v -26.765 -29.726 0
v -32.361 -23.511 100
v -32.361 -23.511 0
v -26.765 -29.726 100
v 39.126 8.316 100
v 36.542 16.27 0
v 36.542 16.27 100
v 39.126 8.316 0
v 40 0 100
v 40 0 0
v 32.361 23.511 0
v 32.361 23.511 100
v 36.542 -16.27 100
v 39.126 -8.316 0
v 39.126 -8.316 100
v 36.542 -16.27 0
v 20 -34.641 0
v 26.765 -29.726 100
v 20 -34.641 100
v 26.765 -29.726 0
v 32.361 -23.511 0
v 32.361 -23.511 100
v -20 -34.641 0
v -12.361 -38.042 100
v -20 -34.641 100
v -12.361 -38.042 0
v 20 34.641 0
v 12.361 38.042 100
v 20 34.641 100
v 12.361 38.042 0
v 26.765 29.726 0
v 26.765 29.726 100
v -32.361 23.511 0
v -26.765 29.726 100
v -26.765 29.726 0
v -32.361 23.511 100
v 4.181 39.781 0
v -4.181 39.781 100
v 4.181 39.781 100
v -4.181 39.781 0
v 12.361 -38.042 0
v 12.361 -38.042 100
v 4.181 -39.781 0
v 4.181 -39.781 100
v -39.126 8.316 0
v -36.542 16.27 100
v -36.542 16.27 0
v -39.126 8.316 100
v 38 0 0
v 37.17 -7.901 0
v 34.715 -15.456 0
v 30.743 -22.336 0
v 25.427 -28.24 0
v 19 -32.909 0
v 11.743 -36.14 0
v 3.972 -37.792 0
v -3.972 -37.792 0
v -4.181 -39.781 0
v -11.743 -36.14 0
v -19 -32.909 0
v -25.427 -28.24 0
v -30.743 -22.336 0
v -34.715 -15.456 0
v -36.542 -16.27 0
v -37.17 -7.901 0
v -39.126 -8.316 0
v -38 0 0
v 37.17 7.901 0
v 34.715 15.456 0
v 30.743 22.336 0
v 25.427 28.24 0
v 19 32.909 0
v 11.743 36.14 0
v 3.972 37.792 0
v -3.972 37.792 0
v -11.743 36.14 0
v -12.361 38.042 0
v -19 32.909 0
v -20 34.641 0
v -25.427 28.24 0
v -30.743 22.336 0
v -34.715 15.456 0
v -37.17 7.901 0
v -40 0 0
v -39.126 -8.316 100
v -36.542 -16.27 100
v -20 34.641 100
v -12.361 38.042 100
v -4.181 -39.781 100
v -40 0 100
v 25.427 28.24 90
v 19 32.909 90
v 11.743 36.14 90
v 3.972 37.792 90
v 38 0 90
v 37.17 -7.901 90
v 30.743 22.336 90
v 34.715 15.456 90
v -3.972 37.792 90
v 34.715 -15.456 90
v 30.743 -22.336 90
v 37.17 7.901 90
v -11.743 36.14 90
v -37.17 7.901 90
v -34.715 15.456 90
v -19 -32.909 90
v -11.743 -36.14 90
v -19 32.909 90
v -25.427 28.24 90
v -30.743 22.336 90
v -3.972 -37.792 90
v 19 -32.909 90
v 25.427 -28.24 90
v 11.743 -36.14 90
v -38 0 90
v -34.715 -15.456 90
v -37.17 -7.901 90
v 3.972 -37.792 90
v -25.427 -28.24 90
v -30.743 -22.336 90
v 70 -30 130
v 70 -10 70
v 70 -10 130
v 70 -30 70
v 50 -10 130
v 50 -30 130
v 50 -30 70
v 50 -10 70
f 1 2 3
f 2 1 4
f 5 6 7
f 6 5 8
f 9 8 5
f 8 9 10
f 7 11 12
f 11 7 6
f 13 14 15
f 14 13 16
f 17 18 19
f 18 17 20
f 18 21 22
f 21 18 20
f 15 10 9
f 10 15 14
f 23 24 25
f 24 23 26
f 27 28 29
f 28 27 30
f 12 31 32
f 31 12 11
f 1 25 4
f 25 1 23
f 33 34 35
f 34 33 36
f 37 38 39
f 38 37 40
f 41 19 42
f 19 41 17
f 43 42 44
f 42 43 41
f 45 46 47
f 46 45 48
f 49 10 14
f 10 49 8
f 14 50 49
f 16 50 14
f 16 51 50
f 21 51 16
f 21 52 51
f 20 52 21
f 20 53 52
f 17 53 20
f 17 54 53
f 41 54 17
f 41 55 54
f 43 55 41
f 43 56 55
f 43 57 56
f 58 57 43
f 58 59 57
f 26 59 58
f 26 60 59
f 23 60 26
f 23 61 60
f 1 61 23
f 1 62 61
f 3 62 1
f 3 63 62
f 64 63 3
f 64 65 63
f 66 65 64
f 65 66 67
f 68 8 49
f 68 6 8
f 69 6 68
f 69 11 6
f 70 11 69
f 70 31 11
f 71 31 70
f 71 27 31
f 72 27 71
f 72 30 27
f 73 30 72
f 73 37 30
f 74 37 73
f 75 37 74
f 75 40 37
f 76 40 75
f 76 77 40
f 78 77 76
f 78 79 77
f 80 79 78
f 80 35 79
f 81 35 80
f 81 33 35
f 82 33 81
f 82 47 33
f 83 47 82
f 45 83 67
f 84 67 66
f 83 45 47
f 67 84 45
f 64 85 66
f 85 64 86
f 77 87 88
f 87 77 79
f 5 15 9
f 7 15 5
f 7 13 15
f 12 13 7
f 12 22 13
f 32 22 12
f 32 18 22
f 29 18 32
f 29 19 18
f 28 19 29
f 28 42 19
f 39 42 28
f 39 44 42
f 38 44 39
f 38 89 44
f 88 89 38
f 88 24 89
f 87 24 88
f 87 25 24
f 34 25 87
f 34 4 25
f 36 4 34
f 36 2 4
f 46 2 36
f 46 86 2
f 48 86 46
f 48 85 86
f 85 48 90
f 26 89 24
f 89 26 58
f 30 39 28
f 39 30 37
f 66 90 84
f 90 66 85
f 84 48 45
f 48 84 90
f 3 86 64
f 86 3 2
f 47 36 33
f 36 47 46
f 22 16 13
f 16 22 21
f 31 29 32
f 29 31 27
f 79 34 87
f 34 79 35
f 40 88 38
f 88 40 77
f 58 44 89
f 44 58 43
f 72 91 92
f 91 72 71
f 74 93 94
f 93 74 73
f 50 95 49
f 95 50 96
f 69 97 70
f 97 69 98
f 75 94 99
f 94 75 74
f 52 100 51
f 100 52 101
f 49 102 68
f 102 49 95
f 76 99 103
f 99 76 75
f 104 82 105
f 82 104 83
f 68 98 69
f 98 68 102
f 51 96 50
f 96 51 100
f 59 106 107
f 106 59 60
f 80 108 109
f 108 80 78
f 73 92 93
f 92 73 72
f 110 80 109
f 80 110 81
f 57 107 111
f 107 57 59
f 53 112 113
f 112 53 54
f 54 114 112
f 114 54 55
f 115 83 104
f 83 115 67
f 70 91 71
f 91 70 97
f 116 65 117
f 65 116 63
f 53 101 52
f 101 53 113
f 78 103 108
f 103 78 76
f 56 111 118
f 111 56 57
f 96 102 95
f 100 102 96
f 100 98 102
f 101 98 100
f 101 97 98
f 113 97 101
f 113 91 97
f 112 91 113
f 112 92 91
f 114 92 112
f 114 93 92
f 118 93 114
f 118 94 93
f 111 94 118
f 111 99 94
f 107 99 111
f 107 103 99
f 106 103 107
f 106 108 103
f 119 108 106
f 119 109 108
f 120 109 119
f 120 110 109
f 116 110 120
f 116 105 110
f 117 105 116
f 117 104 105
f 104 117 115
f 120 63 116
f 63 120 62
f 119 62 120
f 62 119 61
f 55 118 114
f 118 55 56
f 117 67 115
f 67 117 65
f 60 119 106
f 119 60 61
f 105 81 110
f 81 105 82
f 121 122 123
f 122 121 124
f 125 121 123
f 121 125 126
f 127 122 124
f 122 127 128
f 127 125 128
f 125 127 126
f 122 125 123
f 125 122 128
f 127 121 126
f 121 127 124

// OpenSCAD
// Cup parameters
cup_height = 100;
cup_diameter = 80;
wall_thickness = 2;
handle_height = 60;
handle_width = 20;
handle_depth = 20;

// Main cup body
difference() {
  cylinder(h = cup_height, d = cup_diameter, center = false);
  cylinder(h = cup_height - 10, d = cup_diameter - 2 * wall_thickness, center = false);
}

// Handle
translate([cup_diameter/2 + handle_width/2, -handle_height/2, cup_height - handle_height/2]) {
  cube([handle_width, handle_depth, handle_height]);
}
